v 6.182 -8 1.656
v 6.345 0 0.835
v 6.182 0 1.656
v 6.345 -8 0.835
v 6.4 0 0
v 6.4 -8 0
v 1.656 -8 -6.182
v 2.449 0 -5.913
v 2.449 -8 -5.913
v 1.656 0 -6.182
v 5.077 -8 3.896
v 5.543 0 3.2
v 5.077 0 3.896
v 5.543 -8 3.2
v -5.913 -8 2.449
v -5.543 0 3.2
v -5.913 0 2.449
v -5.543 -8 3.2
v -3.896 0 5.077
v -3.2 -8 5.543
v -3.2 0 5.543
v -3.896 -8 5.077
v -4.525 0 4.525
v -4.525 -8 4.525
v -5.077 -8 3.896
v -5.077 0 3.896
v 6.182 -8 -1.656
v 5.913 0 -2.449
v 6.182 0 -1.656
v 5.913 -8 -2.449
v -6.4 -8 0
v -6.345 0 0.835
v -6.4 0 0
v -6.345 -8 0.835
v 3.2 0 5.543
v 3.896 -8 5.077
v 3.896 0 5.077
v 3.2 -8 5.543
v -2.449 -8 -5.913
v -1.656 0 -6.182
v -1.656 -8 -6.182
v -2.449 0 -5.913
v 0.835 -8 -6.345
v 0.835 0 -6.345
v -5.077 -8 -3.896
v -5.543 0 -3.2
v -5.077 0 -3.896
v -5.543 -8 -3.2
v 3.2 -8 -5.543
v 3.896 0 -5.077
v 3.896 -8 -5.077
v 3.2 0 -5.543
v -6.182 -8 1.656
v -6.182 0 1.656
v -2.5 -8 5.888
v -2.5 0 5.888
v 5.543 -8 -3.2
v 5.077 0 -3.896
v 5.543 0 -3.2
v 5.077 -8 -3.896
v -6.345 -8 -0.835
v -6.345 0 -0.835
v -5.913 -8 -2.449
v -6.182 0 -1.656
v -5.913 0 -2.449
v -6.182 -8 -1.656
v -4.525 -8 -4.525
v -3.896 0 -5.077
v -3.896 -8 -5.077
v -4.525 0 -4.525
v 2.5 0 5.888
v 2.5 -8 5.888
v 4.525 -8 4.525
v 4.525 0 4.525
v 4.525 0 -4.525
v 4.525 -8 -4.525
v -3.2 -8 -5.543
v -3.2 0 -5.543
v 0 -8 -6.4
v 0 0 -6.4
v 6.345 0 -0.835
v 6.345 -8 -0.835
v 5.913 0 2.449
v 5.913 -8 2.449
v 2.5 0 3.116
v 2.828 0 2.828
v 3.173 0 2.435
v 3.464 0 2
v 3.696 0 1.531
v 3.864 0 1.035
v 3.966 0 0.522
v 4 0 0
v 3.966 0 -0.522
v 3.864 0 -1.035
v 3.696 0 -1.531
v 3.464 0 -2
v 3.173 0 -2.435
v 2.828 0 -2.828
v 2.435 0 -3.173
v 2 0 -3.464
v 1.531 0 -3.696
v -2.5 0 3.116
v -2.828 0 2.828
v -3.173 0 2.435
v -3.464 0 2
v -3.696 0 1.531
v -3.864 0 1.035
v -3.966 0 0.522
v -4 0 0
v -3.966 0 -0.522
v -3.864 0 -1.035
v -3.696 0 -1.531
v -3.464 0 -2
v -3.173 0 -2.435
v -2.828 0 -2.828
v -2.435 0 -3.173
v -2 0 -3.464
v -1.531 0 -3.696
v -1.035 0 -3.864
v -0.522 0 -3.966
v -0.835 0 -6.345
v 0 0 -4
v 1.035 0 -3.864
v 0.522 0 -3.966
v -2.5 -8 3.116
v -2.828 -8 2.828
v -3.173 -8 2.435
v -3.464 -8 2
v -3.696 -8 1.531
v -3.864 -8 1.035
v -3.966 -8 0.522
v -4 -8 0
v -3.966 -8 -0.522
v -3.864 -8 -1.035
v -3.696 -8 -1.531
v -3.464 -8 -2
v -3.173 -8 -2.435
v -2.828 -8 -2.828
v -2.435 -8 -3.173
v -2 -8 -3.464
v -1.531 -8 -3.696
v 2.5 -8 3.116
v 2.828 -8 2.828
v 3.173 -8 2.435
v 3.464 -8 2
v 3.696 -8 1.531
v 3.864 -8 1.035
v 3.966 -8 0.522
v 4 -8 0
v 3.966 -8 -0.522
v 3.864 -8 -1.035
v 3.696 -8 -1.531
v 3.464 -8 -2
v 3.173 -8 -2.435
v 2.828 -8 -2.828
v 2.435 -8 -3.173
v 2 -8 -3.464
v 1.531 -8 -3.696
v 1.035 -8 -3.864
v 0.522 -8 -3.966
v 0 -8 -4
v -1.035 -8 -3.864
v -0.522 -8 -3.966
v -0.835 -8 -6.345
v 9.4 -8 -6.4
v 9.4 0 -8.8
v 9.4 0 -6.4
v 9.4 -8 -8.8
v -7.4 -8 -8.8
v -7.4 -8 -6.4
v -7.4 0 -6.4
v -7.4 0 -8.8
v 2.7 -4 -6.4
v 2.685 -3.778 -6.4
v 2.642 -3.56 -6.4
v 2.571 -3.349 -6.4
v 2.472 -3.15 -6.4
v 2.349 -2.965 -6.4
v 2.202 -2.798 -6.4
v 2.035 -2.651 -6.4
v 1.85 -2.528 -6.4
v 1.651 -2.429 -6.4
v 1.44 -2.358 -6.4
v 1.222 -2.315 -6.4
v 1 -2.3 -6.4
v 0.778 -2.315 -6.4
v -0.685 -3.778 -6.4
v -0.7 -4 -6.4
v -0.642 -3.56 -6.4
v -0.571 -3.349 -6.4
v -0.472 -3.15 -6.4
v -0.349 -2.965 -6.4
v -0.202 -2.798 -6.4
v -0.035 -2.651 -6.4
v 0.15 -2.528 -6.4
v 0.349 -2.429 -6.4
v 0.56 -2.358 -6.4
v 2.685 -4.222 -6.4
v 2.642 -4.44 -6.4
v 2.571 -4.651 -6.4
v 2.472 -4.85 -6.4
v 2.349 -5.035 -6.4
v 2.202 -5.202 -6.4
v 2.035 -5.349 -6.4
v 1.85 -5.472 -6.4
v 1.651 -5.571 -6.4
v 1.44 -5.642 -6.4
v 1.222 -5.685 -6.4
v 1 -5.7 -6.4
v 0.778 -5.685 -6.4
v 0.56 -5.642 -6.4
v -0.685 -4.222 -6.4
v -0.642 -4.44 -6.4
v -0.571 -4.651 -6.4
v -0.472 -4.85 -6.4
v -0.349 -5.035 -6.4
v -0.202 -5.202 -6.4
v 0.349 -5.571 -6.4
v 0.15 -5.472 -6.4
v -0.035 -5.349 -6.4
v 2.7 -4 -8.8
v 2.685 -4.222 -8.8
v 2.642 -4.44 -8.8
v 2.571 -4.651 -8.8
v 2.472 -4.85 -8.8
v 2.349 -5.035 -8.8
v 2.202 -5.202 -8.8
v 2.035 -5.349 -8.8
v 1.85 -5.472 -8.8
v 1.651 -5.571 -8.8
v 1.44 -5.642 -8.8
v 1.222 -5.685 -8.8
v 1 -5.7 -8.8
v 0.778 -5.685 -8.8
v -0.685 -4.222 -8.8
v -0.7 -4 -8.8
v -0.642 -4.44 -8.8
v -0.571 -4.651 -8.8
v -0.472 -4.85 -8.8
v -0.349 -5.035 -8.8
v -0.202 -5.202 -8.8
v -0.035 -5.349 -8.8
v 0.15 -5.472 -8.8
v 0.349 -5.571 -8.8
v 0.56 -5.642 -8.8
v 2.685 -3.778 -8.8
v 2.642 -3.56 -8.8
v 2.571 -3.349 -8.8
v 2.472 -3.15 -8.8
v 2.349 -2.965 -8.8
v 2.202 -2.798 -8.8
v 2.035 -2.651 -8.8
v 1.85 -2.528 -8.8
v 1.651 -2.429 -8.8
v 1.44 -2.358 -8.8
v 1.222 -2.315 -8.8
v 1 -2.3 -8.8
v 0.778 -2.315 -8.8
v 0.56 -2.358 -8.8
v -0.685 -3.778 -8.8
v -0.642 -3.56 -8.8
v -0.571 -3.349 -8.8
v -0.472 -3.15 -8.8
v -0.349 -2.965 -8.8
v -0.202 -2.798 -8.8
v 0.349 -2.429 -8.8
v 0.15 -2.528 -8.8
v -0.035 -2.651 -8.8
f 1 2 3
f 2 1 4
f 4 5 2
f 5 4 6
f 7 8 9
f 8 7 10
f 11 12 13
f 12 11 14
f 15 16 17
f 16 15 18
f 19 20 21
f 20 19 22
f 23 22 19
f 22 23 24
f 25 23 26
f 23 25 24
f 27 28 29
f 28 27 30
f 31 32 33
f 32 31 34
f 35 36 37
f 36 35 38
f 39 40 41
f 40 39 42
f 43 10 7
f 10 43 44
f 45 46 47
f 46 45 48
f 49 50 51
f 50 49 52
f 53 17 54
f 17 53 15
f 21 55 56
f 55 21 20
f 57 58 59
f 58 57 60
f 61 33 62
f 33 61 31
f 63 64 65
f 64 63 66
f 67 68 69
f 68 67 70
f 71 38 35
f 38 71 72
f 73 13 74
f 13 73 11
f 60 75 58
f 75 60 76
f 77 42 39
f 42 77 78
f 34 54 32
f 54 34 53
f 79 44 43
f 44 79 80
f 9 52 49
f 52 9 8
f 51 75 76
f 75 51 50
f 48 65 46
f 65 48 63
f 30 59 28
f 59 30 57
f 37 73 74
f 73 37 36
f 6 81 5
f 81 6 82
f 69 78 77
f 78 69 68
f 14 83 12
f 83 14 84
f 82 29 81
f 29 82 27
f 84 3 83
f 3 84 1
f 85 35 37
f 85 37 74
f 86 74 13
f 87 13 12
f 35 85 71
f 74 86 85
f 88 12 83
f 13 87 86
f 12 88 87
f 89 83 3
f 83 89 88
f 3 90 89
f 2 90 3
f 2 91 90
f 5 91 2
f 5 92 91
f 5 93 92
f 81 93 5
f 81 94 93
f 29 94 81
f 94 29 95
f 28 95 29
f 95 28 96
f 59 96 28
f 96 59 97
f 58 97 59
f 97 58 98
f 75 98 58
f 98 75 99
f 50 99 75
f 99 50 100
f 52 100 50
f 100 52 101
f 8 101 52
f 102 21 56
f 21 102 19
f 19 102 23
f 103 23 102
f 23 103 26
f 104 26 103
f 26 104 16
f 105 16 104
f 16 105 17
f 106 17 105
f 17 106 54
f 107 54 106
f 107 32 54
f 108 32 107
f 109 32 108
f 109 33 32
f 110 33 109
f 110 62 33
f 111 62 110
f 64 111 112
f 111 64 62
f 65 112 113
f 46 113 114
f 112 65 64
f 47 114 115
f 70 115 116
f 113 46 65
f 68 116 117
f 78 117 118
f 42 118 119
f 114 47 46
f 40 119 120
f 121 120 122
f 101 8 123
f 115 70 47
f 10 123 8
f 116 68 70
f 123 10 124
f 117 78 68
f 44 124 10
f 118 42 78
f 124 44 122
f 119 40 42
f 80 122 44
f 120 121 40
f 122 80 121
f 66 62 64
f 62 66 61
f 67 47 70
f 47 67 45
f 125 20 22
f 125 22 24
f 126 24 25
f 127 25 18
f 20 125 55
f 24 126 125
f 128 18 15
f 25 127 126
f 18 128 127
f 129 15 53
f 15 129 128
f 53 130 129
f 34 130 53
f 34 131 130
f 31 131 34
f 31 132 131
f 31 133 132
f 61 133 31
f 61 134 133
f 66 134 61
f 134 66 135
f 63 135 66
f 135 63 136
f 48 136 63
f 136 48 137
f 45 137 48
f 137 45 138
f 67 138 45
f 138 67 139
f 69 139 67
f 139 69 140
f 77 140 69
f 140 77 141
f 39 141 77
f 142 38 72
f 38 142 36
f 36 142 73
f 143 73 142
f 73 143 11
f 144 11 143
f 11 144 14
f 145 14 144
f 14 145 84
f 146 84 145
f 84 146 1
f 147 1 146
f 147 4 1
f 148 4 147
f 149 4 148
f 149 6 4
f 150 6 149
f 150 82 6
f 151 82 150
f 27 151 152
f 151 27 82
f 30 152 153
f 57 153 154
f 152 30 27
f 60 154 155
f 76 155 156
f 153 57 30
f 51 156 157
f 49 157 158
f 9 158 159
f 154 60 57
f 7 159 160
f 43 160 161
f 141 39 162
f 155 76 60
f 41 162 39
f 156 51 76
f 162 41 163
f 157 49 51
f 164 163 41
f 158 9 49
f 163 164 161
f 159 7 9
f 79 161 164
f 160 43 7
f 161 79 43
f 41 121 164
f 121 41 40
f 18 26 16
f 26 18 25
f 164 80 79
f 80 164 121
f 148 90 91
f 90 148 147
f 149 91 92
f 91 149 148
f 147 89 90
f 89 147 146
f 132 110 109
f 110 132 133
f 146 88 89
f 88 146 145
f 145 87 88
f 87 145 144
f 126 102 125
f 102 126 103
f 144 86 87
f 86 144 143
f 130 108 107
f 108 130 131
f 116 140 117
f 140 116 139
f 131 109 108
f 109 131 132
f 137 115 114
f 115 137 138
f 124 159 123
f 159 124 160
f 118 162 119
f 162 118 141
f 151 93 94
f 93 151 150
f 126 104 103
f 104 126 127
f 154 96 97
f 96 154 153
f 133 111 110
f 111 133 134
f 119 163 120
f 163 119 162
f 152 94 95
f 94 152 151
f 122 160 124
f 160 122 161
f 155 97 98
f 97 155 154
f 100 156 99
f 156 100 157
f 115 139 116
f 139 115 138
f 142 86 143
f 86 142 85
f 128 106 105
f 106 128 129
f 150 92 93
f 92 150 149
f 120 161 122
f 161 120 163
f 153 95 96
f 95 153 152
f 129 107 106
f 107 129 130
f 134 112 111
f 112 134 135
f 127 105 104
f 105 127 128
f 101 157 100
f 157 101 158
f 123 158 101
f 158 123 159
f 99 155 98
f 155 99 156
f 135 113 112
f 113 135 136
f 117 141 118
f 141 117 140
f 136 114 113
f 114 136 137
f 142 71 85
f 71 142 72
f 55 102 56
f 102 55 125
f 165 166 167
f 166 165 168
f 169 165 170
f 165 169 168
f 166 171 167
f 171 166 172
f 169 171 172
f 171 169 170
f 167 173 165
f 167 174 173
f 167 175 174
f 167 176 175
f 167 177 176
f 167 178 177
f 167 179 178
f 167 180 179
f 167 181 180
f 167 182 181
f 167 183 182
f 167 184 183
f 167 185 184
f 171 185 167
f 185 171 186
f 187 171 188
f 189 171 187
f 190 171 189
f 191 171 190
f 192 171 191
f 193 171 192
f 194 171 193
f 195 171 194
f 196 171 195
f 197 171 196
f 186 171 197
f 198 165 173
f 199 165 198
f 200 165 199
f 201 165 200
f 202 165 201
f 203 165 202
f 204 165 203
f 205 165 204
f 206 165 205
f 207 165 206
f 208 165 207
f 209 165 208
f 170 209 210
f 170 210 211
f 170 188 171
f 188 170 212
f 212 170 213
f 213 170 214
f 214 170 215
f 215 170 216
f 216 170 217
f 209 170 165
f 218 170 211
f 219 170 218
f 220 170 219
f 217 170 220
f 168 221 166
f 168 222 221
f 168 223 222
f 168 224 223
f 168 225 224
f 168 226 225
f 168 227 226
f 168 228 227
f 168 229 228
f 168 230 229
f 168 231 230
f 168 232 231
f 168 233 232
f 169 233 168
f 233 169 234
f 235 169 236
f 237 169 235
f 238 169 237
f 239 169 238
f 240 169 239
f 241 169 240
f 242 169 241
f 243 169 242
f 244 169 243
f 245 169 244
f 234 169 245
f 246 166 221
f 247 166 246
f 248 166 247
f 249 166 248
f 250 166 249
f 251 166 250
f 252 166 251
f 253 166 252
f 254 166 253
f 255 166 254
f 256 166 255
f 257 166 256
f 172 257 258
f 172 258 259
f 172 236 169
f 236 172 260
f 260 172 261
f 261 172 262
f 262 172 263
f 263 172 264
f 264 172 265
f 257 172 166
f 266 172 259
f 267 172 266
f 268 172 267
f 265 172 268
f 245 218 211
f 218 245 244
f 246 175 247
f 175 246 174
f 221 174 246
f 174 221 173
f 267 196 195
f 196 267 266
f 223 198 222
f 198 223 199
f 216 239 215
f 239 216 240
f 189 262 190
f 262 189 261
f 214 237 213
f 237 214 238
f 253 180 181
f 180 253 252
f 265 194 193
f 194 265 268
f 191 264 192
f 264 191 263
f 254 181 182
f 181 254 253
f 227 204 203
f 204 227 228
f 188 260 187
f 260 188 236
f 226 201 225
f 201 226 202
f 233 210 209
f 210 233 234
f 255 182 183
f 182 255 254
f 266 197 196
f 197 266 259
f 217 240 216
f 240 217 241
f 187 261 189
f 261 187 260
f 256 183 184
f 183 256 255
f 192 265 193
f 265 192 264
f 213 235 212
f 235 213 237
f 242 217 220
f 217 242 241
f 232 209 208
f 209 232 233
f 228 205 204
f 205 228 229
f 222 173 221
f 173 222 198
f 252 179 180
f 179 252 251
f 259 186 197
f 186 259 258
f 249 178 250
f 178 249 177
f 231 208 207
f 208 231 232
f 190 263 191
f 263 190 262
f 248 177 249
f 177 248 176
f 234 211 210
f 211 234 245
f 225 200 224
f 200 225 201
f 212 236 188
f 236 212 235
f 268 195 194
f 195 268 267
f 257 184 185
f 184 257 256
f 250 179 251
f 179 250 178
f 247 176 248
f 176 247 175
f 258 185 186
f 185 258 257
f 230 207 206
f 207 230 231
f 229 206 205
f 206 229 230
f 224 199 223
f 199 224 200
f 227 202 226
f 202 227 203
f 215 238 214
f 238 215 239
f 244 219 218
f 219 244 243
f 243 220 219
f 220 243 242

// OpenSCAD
// file: params.scad
// Shared dimensions for the kitchen tester printed parts.
// ⚠ TT motor clones vary by ±0.5mm — measure YOUR DORHEA motors and print ONE
// bracket to check fit before running off all four.

// ---- TT motor (yellow gearbox type) ----
tt_body_len    = 65.0;   // gearbox + can, excluding shaft
tt_body_w      = 22.5;   // across the flats
tt_body_h      = 18.5;
tt_hole_d      = 3.2;    // M3 clearance
tt_hole_space  = 17.6;   // between the two gearbox through-holes — MEASURE THIS
tt_hole_z      = tt_body_h / 2;  // holes run through mid-height of the box

// ---- printing ----
fit_clr   = 0.25;  // per-side clearance for press/slide fits
wall      = 3.0;
m3_clr    = 3.4;   // M3 clearance hole
$fn       = 48;

// ---- chassis ----
plate_size  = 190;   // square, mm
plate_thick = 4;
grid_pitch  = 20;    // M3 mounting-hole grid
// main file
// Cable clip — open C-clip with an M3 base hole. Print a handful; mecanum
// rollers eat any wire loose enough to droop.
// Print: PLA, 0.2mm, 100% infill (tiny part), no supports (prints on its side).

include <params.scad>

bundle_d  = 8;     // wire bundle diameter
clip_wall = 2.4;
clip_w    = 8;     // width along the wire
mouth     = 5;     // opening gap — wires push through, then it holds

module cable_clip() {
    rotate([90, 0, 0])  // lay on its side for printing
    union() {
        difference() {
            cylinder(d = bundle_d + 2*clip_wall, h = clip_w);
            translate([0, 0, -1]) cylinder(d = bundle_d, h = clip_w + 2);
            // mouth opening, facing up
            translate([-mouth/2, 0, -1])
                cube([mouth, bundle_d, clip_w + 2]);
        }
        // foot with M3 hole
        translate([-clip_wall - 5, -(bundle_d/2 + clip_wall) - 2.4, 0])
        difference() {
            cube([bundle_d + 2*clip_wall + 4, 2.4, clip_w]);
            translate([(bundle_d + 2*clip_wall + 4)/2, -1, clip_w/2])
                rotate([-90, 0, 0]) cylinder(d = m3_clr, h = 5);
        }
    }
}

cable_clip();
